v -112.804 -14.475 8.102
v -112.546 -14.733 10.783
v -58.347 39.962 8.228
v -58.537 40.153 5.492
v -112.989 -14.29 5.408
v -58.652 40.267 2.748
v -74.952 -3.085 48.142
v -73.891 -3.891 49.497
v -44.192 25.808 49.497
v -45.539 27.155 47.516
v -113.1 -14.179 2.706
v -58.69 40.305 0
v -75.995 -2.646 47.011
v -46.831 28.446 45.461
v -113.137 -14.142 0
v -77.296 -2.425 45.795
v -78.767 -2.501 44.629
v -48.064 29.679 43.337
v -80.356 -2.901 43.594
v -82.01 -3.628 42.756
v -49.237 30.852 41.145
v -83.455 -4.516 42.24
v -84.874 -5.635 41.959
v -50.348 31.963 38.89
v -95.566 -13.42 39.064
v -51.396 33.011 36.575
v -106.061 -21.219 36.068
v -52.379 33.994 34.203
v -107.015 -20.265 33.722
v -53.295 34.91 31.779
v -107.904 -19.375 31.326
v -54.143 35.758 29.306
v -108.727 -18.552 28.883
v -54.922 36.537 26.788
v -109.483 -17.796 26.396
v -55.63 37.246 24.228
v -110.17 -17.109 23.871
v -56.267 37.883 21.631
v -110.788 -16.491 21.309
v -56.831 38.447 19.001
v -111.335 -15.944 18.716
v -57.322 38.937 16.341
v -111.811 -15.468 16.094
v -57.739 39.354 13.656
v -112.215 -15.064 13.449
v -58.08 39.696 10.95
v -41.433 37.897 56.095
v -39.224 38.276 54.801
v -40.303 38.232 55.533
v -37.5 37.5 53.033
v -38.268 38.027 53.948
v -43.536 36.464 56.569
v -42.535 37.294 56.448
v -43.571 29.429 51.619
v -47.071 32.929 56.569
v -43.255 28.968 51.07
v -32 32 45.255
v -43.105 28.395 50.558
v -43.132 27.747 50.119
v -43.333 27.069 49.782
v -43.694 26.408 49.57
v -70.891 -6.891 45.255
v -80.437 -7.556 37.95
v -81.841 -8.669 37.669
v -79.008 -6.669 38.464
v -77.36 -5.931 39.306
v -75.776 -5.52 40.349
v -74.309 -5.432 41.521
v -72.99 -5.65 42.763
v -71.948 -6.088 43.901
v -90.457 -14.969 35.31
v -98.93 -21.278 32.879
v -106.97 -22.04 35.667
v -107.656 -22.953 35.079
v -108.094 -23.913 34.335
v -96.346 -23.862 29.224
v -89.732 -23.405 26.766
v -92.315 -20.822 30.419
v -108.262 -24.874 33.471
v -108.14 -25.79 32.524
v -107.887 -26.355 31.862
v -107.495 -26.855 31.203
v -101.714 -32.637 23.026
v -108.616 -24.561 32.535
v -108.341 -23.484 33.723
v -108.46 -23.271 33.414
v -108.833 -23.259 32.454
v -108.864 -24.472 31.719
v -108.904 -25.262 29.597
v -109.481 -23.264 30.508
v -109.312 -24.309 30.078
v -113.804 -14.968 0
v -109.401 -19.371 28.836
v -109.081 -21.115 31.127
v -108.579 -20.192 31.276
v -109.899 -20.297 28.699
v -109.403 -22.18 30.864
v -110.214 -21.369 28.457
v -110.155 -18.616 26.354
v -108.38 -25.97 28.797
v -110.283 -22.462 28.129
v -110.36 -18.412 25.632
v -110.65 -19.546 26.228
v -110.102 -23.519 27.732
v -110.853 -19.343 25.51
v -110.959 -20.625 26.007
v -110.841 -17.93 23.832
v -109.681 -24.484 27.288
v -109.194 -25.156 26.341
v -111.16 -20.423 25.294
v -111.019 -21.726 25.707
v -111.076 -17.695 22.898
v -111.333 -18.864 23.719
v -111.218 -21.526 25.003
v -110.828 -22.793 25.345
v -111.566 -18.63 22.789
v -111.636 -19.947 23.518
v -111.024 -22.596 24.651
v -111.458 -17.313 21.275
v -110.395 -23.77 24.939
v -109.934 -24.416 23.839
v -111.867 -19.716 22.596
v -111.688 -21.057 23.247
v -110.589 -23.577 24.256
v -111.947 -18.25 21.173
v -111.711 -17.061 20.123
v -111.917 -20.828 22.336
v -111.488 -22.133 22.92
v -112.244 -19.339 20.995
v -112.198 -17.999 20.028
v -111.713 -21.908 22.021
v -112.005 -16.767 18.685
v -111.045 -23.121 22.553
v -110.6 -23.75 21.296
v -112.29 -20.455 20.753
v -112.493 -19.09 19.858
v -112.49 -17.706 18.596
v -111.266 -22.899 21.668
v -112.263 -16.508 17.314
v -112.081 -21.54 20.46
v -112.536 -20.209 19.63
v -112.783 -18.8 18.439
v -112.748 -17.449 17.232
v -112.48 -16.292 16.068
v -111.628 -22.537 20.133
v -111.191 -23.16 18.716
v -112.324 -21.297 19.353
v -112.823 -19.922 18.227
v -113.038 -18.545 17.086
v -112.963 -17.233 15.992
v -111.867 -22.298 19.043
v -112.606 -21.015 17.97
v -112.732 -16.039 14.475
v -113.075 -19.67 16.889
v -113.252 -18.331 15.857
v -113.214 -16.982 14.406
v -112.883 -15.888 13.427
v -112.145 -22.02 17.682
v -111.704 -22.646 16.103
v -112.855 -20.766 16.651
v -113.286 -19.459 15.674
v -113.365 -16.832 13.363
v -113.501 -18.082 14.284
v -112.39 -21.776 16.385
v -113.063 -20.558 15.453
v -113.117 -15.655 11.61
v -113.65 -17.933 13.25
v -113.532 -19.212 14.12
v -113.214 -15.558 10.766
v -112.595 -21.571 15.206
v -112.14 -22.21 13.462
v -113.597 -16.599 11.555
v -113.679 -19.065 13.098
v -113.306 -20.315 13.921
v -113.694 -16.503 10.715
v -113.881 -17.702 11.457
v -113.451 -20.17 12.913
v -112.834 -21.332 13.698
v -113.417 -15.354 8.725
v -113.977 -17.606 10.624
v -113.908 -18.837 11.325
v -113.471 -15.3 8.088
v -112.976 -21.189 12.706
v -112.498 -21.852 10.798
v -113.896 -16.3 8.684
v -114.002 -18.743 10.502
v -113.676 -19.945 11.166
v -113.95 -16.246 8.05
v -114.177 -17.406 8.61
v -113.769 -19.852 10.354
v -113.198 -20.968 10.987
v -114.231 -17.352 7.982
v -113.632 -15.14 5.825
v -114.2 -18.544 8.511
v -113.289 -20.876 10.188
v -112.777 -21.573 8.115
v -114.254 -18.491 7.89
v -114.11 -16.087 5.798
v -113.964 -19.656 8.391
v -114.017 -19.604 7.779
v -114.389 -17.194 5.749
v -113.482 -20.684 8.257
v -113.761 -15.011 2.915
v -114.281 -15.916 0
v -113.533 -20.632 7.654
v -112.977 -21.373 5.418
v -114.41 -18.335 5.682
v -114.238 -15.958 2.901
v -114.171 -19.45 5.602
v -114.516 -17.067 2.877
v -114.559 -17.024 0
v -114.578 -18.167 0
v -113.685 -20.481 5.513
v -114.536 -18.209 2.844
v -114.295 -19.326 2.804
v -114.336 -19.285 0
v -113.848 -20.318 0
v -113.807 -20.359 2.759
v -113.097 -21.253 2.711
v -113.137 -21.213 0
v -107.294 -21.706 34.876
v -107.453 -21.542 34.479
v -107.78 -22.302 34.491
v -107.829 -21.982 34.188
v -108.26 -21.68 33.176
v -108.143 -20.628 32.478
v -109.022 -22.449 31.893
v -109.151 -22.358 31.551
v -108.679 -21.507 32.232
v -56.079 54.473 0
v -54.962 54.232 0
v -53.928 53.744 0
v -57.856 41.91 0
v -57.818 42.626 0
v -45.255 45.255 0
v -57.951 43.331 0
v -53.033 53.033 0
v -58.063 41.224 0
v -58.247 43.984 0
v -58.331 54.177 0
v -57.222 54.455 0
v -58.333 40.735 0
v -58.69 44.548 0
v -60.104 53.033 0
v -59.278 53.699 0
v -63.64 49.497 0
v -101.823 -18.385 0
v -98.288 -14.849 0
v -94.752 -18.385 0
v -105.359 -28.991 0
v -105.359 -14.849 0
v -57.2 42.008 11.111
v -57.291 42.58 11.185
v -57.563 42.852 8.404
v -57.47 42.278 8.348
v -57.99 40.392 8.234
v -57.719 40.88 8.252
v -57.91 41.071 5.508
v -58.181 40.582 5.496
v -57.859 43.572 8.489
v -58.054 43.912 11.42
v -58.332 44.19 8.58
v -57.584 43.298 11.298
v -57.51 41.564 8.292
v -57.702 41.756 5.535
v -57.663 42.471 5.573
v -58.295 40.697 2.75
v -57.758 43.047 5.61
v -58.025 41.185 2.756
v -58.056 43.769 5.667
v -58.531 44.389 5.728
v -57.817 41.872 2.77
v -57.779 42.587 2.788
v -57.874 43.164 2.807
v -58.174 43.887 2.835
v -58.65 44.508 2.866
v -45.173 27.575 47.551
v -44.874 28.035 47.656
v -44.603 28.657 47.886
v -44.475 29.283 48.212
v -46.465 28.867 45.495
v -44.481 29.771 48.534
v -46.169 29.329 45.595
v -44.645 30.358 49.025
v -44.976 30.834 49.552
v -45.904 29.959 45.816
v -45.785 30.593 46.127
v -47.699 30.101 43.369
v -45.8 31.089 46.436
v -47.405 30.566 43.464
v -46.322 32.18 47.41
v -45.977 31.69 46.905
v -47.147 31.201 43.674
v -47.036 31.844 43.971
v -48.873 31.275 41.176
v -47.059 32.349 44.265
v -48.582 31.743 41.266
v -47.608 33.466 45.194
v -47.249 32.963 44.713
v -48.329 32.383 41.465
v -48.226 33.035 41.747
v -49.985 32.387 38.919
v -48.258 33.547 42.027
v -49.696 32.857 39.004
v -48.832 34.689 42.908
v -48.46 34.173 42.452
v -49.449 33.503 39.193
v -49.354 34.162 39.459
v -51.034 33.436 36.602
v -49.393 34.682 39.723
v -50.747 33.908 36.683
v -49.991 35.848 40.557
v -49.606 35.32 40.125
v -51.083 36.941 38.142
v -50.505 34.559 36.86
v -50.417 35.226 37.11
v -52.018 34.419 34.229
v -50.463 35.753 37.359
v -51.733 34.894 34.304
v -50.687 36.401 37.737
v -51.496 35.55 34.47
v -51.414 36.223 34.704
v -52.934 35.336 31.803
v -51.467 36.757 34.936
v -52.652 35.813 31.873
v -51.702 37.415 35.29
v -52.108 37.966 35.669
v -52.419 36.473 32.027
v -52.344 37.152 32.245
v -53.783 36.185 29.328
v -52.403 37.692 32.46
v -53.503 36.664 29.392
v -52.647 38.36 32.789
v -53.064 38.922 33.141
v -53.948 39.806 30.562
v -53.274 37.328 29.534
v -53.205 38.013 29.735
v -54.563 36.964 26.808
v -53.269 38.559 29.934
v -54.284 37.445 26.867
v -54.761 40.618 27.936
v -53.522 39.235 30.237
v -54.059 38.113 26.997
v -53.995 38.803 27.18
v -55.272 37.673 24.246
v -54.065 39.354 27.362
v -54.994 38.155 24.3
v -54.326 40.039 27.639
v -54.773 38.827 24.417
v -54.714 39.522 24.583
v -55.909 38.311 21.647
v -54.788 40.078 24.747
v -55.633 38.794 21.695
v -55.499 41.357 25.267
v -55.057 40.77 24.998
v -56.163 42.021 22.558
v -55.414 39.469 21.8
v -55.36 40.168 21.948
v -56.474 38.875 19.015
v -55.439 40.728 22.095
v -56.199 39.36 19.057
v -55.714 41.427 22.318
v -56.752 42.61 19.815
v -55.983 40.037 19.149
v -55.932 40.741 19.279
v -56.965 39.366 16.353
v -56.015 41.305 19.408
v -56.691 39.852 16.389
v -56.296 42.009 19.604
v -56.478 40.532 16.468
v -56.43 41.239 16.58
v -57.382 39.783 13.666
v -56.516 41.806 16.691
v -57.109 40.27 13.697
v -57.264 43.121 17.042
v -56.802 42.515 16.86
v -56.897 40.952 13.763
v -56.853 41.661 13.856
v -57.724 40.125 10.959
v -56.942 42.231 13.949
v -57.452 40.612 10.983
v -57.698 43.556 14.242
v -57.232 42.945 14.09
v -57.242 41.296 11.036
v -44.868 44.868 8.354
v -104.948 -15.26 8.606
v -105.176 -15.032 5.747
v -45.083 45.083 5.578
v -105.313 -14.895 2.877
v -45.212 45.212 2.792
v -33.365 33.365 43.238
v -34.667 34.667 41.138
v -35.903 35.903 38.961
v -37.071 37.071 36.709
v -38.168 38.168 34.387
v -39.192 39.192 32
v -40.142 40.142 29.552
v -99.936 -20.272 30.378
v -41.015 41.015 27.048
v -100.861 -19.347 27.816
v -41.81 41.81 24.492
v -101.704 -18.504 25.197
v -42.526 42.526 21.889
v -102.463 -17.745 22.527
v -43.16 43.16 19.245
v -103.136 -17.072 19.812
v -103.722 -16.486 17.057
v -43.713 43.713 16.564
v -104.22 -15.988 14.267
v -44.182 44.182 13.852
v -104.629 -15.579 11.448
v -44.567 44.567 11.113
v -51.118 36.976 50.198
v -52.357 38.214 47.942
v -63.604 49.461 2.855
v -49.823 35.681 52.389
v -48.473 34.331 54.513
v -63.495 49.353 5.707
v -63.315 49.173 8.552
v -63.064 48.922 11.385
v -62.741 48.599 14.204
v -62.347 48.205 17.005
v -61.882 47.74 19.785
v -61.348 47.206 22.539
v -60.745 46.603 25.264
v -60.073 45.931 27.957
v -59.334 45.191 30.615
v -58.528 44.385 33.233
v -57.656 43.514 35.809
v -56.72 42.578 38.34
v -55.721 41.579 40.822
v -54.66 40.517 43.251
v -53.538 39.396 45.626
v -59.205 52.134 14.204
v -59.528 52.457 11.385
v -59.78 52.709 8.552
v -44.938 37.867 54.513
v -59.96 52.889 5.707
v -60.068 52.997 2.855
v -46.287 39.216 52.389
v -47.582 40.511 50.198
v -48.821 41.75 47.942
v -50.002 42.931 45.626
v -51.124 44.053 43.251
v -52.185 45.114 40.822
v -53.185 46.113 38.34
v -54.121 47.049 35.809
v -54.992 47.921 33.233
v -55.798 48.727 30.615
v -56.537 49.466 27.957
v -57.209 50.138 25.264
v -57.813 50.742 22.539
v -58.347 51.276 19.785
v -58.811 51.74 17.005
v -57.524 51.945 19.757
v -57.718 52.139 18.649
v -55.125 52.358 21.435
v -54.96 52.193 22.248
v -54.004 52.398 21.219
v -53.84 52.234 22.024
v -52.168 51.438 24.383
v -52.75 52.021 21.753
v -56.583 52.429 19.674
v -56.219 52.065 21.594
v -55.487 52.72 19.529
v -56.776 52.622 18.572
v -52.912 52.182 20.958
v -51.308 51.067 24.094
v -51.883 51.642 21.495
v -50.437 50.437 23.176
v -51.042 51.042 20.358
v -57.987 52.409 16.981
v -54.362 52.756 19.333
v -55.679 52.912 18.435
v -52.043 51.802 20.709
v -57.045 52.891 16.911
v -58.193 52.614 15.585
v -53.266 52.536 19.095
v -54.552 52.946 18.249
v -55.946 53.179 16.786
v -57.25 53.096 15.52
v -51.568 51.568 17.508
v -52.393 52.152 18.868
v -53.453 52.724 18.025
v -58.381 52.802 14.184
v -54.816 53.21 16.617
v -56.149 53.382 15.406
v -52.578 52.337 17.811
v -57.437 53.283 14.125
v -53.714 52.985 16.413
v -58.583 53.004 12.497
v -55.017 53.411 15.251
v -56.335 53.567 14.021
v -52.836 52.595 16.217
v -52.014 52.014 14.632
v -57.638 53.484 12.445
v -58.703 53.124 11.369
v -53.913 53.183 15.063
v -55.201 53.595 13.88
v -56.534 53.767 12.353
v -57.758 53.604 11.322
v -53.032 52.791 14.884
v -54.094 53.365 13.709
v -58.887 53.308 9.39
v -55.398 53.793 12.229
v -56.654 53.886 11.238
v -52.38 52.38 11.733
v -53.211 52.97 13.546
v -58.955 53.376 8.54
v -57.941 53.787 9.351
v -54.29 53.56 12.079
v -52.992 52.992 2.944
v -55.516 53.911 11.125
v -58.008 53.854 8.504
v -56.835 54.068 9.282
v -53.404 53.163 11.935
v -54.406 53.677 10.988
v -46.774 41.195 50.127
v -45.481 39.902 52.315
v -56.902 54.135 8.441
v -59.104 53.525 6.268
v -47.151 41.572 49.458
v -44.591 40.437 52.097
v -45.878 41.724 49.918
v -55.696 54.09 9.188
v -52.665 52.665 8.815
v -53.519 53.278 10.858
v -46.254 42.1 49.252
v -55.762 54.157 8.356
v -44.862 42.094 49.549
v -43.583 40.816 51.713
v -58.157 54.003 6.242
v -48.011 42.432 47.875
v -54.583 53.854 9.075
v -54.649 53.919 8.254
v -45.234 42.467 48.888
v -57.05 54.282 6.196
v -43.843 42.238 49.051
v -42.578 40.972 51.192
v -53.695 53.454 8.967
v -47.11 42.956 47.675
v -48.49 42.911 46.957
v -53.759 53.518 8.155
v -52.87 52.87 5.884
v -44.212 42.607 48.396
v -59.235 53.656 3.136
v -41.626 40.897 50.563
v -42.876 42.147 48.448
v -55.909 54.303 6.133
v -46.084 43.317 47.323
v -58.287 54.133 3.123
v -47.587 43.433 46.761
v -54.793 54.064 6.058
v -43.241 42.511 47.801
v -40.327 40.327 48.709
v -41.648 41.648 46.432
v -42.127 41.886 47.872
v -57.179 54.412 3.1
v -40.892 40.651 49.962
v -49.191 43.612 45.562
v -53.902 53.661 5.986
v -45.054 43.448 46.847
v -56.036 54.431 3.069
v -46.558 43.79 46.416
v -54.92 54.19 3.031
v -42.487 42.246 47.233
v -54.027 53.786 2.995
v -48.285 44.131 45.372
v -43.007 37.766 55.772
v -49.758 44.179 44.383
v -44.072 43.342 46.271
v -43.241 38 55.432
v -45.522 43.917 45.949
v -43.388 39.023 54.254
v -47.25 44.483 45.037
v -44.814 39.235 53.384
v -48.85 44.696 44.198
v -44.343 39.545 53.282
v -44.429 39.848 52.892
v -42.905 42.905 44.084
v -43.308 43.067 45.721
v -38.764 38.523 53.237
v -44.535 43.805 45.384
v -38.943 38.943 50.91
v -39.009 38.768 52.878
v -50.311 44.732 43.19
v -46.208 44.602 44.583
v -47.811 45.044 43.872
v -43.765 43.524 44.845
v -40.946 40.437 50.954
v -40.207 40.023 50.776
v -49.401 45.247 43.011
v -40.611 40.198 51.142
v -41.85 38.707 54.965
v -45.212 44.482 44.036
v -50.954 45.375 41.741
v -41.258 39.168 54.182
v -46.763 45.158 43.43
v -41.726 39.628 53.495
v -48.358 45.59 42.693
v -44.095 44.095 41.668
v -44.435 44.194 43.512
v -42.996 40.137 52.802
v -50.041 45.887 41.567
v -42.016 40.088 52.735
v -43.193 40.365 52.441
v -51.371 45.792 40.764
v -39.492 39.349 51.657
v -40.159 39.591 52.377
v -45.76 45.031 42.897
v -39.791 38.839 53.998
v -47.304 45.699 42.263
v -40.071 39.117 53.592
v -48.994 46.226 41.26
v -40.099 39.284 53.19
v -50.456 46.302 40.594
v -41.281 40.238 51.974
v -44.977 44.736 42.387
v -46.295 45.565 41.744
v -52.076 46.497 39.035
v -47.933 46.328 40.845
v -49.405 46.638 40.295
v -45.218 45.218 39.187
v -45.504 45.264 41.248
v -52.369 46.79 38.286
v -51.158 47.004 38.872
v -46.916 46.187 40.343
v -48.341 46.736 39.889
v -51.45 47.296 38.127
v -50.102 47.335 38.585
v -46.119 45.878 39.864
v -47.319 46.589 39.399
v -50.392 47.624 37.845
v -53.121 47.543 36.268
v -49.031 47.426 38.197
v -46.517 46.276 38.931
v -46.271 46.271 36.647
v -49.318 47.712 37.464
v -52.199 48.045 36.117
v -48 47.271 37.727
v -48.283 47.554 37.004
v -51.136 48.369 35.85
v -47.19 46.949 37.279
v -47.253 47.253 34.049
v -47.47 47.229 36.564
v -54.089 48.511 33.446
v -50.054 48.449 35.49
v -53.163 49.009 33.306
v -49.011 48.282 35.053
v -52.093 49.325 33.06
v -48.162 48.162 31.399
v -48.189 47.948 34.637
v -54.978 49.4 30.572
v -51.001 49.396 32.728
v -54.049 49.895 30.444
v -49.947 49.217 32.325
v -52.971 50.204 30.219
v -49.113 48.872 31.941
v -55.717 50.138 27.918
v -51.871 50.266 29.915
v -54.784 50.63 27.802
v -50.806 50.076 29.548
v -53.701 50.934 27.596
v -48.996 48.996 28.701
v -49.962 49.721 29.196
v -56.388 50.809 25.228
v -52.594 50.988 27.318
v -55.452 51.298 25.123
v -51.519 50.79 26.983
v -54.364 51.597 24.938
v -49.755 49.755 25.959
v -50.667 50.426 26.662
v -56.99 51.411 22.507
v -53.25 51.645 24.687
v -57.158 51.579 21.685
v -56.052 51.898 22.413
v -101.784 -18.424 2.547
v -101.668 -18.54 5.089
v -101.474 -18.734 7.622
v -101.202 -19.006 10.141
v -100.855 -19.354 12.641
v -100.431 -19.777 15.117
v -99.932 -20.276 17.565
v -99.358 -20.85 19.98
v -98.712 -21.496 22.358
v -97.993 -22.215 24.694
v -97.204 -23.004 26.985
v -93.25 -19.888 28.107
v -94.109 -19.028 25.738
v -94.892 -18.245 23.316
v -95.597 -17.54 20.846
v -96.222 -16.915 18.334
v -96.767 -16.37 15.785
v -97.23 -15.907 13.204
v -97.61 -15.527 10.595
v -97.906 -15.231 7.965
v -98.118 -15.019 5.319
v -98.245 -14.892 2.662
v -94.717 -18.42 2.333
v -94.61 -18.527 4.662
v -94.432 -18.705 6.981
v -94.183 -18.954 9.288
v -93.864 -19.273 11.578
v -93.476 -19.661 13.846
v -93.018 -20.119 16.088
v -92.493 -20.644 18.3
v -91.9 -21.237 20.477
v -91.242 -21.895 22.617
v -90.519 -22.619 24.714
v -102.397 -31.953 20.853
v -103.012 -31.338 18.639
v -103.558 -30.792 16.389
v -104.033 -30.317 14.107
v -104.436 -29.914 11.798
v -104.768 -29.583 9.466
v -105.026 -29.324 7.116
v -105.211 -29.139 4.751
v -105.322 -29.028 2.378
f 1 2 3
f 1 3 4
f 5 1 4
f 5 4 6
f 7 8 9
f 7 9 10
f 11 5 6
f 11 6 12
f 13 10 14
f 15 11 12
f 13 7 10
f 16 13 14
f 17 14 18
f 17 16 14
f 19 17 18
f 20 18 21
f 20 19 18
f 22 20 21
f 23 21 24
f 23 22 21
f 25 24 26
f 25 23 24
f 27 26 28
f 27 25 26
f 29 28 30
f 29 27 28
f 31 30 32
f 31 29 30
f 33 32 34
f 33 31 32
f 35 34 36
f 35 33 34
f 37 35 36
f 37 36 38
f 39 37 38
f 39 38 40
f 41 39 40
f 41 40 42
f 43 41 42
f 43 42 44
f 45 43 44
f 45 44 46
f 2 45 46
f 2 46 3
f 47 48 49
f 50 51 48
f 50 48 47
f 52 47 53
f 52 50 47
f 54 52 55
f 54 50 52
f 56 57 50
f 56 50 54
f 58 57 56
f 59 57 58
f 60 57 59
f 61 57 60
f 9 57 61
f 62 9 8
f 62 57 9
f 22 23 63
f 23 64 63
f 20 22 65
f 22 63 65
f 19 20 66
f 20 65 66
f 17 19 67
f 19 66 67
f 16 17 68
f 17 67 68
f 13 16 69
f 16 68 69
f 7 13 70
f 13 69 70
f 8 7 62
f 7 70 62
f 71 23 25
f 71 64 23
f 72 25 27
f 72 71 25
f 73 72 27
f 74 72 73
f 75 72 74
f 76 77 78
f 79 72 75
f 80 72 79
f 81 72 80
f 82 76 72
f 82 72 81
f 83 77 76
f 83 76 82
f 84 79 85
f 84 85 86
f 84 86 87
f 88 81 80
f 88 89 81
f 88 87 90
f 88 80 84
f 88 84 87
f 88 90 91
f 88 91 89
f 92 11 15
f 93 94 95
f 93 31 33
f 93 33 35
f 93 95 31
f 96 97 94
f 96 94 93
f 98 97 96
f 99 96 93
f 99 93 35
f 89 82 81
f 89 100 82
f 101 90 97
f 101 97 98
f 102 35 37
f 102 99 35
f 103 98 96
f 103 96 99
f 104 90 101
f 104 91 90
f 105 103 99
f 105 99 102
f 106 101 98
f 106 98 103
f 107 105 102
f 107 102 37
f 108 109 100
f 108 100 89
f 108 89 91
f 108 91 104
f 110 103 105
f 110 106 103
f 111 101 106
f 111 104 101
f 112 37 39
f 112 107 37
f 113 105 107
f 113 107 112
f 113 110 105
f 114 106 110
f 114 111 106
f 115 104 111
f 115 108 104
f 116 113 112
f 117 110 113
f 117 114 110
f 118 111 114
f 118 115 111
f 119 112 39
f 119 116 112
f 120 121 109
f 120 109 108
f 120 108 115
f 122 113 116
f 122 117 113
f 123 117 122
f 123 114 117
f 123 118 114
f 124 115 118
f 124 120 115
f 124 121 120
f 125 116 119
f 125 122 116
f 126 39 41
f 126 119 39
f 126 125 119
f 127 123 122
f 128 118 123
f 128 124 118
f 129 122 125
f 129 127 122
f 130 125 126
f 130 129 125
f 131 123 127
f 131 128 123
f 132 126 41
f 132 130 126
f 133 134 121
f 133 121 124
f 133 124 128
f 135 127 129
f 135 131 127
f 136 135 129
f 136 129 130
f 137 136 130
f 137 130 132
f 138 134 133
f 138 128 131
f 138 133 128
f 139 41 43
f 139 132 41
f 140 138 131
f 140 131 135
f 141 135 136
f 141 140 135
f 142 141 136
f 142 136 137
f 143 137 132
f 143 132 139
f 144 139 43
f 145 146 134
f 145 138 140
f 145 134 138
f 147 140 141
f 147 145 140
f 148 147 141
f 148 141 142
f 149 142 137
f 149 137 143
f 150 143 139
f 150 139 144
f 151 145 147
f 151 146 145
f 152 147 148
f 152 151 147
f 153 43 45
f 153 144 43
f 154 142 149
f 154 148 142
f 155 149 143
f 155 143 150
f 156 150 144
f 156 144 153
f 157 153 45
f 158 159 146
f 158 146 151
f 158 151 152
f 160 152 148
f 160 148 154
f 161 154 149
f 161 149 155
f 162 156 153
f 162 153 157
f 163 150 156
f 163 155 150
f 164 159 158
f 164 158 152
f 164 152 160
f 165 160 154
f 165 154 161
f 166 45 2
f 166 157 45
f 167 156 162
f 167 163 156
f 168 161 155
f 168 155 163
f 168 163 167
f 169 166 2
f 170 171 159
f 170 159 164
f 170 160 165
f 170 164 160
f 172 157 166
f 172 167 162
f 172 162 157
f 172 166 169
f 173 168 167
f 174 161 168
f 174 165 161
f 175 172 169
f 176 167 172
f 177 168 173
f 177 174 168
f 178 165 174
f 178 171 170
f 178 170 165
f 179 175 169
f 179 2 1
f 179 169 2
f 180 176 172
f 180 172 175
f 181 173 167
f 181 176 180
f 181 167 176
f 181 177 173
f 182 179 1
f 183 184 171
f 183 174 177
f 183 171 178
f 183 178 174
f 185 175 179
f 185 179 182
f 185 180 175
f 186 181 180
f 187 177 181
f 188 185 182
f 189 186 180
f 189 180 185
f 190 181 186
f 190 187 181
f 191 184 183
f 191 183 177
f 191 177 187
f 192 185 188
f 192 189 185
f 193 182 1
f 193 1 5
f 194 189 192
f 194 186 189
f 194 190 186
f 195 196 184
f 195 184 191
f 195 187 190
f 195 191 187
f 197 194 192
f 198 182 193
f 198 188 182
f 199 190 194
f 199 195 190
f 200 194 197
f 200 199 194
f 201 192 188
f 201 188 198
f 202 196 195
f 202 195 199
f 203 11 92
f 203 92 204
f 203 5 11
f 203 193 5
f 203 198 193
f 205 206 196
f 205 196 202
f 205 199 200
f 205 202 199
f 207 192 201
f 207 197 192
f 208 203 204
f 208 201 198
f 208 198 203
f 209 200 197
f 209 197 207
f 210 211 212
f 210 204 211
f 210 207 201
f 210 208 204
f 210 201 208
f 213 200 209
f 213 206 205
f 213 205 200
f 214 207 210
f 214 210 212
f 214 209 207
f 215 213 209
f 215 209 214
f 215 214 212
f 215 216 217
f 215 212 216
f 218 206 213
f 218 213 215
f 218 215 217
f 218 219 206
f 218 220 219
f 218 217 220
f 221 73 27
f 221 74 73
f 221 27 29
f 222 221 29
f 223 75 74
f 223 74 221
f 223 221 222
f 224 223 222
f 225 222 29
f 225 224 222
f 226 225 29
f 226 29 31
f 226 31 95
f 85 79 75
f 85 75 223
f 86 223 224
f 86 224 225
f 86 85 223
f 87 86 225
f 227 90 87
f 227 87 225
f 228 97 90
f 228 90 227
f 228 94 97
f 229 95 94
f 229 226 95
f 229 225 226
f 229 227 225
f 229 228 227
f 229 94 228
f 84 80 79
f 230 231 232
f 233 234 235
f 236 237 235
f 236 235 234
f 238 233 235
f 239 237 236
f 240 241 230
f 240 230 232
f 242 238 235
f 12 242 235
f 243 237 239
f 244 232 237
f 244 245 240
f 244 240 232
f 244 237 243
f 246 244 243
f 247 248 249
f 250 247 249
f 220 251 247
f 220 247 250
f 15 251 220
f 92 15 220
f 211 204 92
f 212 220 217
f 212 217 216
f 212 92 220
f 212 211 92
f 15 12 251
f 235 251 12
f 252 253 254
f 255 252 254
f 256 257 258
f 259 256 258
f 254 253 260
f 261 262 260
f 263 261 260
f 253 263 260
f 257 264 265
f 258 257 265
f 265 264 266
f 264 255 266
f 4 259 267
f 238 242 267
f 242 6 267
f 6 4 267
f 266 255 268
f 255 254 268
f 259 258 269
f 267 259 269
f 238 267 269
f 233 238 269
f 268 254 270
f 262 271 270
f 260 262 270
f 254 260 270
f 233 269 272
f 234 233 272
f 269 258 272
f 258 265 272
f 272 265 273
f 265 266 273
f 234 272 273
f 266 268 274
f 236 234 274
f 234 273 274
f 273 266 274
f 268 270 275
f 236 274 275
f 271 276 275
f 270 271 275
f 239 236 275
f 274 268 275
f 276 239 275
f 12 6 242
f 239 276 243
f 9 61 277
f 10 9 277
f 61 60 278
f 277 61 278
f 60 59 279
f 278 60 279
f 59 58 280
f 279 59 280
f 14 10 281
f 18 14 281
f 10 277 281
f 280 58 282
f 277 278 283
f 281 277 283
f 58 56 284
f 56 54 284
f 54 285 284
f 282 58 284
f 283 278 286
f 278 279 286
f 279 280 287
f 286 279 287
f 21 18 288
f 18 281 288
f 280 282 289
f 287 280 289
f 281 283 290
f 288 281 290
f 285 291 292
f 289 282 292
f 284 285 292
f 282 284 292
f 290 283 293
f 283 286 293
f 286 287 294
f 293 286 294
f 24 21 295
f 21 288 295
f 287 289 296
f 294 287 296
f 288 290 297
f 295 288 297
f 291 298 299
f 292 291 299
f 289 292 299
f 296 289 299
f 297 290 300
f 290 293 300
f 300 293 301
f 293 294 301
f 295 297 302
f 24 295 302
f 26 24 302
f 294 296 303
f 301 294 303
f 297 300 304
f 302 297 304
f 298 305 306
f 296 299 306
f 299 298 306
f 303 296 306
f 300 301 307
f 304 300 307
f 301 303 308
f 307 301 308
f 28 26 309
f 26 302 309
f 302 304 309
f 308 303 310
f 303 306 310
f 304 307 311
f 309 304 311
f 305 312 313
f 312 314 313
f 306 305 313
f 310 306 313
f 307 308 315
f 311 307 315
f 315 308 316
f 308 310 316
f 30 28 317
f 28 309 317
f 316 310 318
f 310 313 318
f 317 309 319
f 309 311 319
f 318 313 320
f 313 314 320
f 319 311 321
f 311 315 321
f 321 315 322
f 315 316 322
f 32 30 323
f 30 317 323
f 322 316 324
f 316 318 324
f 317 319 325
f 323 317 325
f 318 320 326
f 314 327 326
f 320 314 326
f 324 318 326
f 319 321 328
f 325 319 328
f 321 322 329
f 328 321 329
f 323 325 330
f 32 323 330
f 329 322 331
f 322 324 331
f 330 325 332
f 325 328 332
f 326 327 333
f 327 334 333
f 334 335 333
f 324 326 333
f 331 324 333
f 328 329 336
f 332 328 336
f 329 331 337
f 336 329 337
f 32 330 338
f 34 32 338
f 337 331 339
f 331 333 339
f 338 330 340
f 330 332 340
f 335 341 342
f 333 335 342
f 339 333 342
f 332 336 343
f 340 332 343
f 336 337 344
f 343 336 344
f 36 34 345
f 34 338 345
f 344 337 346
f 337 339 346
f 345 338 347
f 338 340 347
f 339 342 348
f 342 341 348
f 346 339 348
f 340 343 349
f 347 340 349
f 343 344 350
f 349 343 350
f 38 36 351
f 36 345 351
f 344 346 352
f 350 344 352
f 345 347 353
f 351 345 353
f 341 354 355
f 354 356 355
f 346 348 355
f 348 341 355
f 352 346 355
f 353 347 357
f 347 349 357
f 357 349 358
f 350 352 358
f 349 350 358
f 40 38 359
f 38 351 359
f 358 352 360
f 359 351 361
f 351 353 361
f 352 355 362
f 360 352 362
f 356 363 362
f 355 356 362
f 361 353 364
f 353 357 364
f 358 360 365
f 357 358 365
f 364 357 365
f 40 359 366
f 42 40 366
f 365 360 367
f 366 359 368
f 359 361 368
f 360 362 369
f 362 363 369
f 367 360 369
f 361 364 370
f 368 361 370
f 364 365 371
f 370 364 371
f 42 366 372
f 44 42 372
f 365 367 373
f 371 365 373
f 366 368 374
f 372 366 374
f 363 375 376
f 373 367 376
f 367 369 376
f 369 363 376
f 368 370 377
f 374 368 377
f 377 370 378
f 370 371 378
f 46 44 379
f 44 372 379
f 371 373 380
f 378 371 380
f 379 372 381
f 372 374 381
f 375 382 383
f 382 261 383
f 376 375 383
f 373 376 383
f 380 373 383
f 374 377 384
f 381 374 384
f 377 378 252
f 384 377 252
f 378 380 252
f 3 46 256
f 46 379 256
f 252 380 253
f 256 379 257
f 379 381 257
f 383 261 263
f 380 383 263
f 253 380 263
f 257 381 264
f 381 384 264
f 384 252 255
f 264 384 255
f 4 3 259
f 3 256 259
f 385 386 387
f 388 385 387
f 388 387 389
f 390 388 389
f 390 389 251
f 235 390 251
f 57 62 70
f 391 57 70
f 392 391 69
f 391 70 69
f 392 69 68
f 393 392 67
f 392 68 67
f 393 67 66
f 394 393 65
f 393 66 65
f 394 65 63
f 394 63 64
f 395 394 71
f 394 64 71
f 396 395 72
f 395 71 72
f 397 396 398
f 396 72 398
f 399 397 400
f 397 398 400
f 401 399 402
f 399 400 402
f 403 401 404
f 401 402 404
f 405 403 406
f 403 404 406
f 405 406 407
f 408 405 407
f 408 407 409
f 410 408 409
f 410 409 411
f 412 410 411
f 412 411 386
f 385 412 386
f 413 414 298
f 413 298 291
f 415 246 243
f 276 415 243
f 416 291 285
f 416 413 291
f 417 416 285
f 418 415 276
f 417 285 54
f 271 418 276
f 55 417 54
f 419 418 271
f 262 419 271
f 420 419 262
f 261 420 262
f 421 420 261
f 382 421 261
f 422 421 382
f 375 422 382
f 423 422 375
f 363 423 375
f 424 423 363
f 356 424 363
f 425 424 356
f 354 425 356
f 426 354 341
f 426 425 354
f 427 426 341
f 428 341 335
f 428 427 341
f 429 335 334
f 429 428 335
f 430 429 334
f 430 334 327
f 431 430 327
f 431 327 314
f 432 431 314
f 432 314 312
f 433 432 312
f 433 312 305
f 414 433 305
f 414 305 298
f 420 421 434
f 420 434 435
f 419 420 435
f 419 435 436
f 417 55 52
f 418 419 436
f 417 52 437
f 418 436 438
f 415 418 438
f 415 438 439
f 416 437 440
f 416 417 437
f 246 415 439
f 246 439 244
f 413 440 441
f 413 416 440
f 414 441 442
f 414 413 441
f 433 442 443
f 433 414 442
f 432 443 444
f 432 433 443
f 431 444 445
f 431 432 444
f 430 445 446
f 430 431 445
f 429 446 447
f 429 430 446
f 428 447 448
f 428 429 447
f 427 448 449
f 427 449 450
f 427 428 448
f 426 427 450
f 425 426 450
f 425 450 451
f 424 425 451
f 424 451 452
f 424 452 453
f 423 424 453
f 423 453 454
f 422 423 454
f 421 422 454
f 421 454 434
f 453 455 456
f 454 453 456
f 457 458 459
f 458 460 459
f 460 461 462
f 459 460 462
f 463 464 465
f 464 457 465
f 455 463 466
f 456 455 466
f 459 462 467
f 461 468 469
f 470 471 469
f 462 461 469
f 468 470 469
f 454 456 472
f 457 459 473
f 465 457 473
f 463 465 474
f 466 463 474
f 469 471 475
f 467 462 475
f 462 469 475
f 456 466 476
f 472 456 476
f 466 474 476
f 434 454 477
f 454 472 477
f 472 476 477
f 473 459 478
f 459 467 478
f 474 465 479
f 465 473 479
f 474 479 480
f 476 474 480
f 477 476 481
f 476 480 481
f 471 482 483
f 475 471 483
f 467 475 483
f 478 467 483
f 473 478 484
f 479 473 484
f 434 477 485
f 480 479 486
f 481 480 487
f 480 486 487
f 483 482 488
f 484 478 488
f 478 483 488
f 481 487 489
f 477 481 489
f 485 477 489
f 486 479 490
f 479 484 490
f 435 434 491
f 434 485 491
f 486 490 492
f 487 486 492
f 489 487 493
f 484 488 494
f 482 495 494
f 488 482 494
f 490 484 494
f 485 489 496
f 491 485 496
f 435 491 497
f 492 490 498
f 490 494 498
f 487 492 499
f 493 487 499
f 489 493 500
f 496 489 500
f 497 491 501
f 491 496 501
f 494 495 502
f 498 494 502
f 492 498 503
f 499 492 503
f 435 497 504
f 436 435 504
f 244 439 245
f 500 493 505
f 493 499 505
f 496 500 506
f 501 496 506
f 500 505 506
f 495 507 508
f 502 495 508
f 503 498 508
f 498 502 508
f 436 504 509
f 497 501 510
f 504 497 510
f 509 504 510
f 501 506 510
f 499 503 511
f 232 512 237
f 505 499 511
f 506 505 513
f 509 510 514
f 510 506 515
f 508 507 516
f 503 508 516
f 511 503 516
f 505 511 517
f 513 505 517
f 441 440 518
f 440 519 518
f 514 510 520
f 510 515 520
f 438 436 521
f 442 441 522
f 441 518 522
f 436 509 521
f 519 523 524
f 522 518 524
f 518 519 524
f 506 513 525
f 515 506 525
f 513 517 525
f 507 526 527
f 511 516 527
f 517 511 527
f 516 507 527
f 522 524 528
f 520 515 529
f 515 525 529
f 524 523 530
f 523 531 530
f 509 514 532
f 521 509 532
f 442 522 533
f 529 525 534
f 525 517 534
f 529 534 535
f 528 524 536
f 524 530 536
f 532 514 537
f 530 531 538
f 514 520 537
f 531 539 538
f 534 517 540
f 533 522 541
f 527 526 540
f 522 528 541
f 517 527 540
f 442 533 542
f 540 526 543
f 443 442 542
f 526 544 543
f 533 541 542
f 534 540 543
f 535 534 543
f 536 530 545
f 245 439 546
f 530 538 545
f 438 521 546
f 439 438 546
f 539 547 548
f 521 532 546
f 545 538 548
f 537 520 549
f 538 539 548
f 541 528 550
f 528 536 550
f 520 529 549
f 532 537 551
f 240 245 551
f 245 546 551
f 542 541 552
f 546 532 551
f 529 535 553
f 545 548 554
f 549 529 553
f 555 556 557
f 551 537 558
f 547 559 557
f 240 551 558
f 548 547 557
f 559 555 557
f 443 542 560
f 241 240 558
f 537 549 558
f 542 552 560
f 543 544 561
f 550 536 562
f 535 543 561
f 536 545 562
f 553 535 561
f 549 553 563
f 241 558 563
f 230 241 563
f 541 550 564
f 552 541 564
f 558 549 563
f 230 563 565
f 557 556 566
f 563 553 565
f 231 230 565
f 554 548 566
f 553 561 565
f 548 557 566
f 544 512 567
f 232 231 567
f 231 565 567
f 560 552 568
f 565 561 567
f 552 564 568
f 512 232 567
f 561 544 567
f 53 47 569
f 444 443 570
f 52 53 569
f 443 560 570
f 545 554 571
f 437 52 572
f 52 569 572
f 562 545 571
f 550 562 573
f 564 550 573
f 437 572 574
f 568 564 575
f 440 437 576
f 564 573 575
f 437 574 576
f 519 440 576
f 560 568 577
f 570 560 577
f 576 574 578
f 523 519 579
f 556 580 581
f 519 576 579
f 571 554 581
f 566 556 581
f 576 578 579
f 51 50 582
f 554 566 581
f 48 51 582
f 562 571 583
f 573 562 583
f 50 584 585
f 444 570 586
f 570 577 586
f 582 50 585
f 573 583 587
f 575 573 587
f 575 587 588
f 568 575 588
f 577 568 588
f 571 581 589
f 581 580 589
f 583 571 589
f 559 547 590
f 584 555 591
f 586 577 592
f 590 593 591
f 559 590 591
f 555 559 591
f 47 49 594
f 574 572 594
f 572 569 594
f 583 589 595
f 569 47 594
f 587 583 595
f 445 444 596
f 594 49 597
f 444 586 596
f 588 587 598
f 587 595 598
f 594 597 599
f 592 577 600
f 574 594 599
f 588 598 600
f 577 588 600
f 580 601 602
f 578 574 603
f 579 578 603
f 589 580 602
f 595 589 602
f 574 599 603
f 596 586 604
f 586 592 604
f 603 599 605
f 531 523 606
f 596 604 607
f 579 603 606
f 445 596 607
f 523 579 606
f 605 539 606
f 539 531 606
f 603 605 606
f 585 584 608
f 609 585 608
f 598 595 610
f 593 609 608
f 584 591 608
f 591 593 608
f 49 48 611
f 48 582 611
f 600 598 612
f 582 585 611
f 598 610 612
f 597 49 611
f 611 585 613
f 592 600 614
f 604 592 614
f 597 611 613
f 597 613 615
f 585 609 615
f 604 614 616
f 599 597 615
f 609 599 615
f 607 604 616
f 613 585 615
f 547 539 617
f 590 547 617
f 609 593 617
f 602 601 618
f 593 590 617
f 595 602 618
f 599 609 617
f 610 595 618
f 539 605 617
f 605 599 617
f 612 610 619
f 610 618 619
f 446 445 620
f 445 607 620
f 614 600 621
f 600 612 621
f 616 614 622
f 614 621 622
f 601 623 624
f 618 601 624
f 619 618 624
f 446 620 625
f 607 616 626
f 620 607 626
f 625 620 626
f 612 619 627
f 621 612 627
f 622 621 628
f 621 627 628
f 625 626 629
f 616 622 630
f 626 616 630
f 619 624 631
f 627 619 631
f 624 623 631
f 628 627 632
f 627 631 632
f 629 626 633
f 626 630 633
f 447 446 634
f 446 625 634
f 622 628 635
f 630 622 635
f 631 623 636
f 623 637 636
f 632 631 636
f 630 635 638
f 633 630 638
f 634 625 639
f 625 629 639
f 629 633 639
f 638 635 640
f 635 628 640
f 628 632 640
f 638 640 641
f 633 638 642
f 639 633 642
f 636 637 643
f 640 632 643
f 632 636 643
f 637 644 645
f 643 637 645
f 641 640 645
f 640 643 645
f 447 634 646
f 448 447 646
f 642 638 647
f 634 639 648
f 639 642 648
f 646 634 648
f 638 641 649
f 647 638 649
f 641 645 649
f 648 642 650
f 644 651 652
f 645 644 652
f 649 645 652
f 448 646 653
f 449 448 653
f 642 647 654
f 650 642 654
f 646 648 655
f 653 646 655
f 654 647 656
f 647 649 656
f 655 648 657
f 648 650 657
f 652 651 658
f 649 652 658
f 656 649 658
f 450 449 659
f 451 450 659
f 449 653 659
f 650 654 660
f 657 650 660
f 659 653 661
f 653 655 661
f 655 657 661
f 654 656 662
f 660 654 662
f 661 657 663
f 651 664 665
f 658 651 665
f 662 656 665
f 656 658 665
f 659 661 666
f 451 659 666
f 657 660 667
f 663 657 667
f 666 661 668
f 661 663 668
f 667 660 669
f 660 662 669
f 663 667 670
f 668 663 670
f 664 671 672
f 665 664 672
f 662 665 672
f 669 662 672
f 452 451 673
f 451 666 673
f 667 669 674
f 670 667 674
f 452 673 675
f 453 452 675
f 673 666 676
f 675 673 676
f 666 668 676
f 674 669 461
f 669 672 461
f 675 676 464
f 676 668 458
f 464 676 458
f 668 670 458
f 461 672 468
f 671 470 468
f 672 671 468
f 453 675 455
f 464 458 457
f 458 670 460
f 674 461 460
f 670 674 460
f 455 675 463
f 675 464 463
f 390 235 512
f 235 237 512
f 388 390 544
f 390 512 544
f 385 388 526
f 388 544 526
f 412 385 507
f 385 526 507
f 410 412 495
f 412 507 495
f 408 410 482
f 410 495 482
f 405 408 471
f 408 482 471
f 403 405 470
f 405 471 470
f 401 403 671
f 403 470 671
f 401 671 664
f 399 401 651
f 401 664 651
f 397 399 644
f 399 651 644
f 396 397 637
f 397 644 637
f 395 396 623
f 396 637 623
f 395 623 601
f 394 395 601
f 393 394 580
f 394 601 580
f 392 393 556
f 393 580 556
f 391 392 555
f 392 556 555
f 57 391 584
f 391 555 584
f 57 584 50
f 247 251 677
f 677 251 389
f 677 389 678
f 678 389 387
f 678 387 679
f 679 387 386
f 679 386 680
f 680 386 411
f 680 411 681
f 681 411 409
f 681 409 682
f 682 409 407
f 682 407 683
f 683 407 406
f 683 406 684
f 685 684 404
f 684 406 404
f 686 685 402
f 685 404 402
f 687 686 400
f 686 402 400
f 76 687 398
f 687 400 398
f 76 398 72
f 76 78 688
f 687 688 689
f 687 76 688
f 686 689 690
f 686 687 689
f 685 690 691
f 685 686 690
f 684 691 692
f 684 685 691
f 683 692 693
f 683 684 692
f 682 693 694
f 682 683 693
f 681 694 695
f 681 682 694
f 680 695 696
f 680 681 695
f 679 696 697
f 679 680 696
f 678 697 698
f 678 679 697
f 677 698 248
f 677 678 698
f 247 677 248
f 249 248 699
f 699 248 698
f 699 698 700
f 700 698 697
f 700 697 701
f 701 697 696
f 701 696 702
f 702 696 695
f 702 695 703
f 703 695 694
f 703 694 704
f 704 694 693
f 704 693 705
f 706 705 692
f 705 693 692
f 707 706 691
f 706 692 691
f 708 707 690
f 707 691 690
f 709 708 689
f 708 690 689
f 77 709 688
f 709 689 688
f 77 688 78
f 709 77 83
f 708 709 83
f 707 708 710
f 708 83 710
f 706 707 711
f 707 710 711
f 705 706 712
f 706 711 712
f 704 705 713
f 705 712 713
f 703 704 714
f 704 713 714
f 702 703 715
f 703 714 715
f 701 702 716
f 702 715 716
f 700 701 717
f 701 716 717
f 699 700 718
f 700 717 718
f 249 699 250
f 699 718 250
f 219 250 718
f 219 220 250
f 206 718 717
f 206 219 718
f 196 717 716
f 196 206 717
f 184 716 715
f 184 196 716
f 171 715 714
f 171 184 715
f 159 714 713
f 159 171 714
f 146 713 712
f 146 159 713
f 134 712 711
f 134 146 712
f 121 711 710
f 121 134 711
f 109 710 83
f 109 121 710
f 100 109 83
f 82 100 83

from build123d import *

# Parameters (mm, degrees)
BOX007_W               = 100
BOX007_H               = 100
BOX007_DEPTH           = 100
BOX007_PLACEMENT_ANGLE = 135
BOX006_W               = 200
BOX006_H               = 100
BOX006_DEPTH           = 100
BOX006_PLACEMENT_ANGLE = 135
BOX005_W               = 100
BOX005_H               = 100
BOX005_DEPTH           = 100
BOX004_W               = 20
BOX004_H               = 20
BOX004_DEPTH           = 80
BOX003_W               = 20
BOX003_H               = 20
BOX003_DEPTH           = 80
BOX002_W               = 10
BOX002_H               = 25
BOX002_DEPTH           = 35
BOX002_PITCH_ANGLE     = -15
BOX001_W               = 10
BOX001_H               = 25
BOX001_DEPTH           = 35
BOX001_PITCH_ANGLE     = 15
BOX_W                  = 20
BOX_H                  = 25
BOX_DEPTH              = 35
CYLINDER005_R          = 10
CYLINDER005_DEPTH      = 180
CYLINDER005_ROLL_ANGLE = 90
CYLINDER004_R          = 54
CYLINDER004_DEPTH      = 100
CYLINDER003_R          = 59
CYLINDER003_DEPTH      = 10
CYLINDER002_R          = 64
CYLINDER002_DEPTH      = 85
CYLINDER001_R          = 70
CYLINDER001_DEPTH      = 90
CYLINDER_R             = 80
CYLINDER_DEPTH         = 10
FILLET_R               = 3
FILLET001_R            = 5
FILLET002_R            = 5
CUT009_ROLL_ANGLE      = 90
CUT009_PITCH_ANGLE     = -45
CUT009_PLACEMENT_ANGLE = -45


with BuildPart() as cube004:
    # Box007 → Box007 (new body)
    with BuildSketch(Plane.XY):
        with Locations((50, 50)):
            Rectangle(BOX007_W, BOX007_H)
    extrude(amount=BOX007_DEPTH)


with BuildPart() as cube004_1:
    # Box007 placement: moved
    add(cube004.part.rotate(Axis((0, 0, 0), (0, 0, -1)), BOX007_PLACEMENT_ANGLE))


with BuildPart() as cube003:
    # Box006 → Box006 (new body)
    with BuildSketch(Plane.XY):
        with Locations((100, 50)):
            Rectangle(BOX006_W, BOX006_H)
    extrude(amount=BOX006_DEPTH)


with BuildPart() as cube003_1:
    # Box006 placement: moved
    add(cube003.part.moved(Location((71, -71, 0))).rotate(Axis((71, -71, 0), (0, 0, 1)), BOX006_PLACEMENT_ANGLE))


with BuildPart() as cube002:
    # Box005 → Box005 (new body)
    with BuildSketch(Plane.XY):
        with Locations((50, 50)):
            Rectangle(BOX005_W, BOX005_H)
    extrude(amount=BOX005_DEPTH)


with BuildPart() as tab_cut_l:
    # Box004 → Box004 (new body)
    with BuildSketch(Plane(origin=(-83, -10, 20), x_dir=(1, 0, 0), z_dir=(0, 0, 1))):
        with Locations((10, 10)):
            Rectangle(BOX004_W, BOX004_H)
    extrude(amount=BOX004_DEPTH)


with BuildPart() as tab_cut_r:
    # Box003 → Box003 (new body)
    with BuildSketch(Plane(origin=(63, -10, 20), x_dir=(1, 0, 0), z_dir=(0, 0, 1))):
        with Locations((10, 10)):
            Rectangle(BOX003_W, BOX003_H)
    extrude(amount=BOX003_DEPTH)


with BuildPart() as cube001:
    # Box002 → Box002 (new body)
    with BuildSketch(Plane.XY):
        with Locations((5, 12.5)):
            Rectangle(BOX002_W, BOX002_H)
    extrude(amount=BOX002_DEPTH)


with BuildPart() as cube001_1:
    # Box002 pitch: moved
    add(cube001.part.rotate(Axis((0, 0, 0), (0, 1, 0)), BOX002_PITCH_ANGLE))


with BuildPart() as cube001_2:
    # Box002 placement: moved
    add(cube001_1.part.moved(Location((-9.95, 48, 64))))


with BuildPart() as cube:
    # Box001 → Box001 (new body)
    with BuildSketch(Plane.XY):
        with Locations((5, 12.5)):
            Rectangle(BOX001_W, BOX001_H)
    extrude(amount=BOX001_DEPTH)


with BuildPart() as cube_1:
    # Box001 pitch: moved
    add(cube.part.rotate(Axis((0, 0, 0), (0, 1, 0)), BOX001_PITCH_ANGLE))


with BuildPart() as cube_2:
    # Box001 placement: moved
    add(cube_1.part.moved(Location((0, 48, 65))))


with BuildPart() as bearing_slot:
    # Box → Box (new body)
    with BuildSketch(Plane(origin=(-10, 48, 65), x_dir=(1, 0, 0), z_dir=(0, 0, 1))):
        with Locations((10, 12.5)):
            Rectangle(BOX_W, BOX_H)
    extrude(amount=BOX_DEPTH)


with BuildPart() as bearing_holes:
    # Cylinder005 → Cylinder005 (new body)
    with BuildSketch(Plane.XY):
        Circle(CYLINDER005_R)
    extrude(amount=CYLINDER005_DEPTH)


with BuildPart() as bearing_holes_1:
    # Cylinder005 roll: moved
    add(bearing_holes.part.rotate(Axis((0, 0, 0), (1, 0, 0)), CYLINDER005_ROLL_ANGLE))


with BuildPart() as bearing_holes_2:
    # Cylinder005 placement: moved
    add(bearing_holes_1.part.moved(Location((0, 90, 65))))


with BuildPart() as through_hole:
    # Cylinder004 → Cylinder004 (new body)
    with BuildSketch(Plane.XY):
        Circle(CYLINDER004_R)
    extrude(amount=CYLINDER004_DEPTH)


with BuildPart() as inner_lip:
    # Cylinder003 → Cylinder003 (new body)
    with BuildSketch(Plane.XY.offset(80)):
        Circle(CYLINDER003_R)
    extrude(amount=CYLINDER003_DEPTH)


with BuildPart() as inner_hole:
    # Cylinder002 → Cylinder002 (new body)
    with BuildSketch(Plane.XY):
        Circle(CYLINDER002_R)
    extrude(amount=CYLINDER002_DEPTH)


with BuildPart() as body_cylinder:
    # Cylinder001 → Cylinder001 (new body)
    with BuildSketch(Plane.XY.offset(5)):
        Circle(CYLINDER001_R)
    extrude(amount=CYLINDER001_DEPTH)


with BuildPart() as cut010:
    # Cylinder → Cylinder (new body)
    with BuildSketch(Plane.XY):
        Circle(CYLINDER_R)
    extrude(amount=CYLINDER_DEPTH)

    # Fusion: union Body_Cylinder
    add(body_cylinder.part)

    # Cut: cut Inner_Hole
    add(inner_hole.part, mode=Mode.SUBTRACT)

    # Fusion001: union Inner_Lip
    add(inner_lip.part)

    # Cut001: cut Through_Hole
    add(through_hole.part, mode=Mode.SUBTRACT)

    # Fillet
    fillet_edges = [cut010.edges().sort_by_distance(p)[0] for p in [
        (-70, 0, 10),
    ]]
    fillet(fillet_edges, radius=FILLET_R)

    # Fillet001
    fillet001_edges = [cut010.edges().sort_by_distance(p)[0] for p in [
        (-80, 0, 0),
    ]]
    fillet(fillet001_edges, radius=FILLET001_R)

    # Fillet002
    fillet002_edges = [cut010.edges().sort_by_distance(p)[0] for p in [
        (-70, 0, 95),
    ]]
    fillet(fillet002_edges, radius=FILLET002_R)

    # Cut002: cut Bearing_Holes
    add(bearing_holes_2.part, mode=Mode.SUBTRACT)

    # Cut003: cut Bearing_Slot
    add(bearing_slot.part, mode=Mode.SUBTRACT)

    # Cut004: cut Cube
    add(cube_2.part, mode=Mode.SUBTRACT)

    # Cut005: cut Cube001
    add(cube001_2.part, mode=Mode.SUBTRACT)

    # Cut006: cut Tab_Cut_R
    add(tab_cut_r.part, mode=Mode.SUBTRACT)

    # Cut007: cut Tab_Cut_L
    add(tab_cut_l.part, mode=Mode.SUBTRACT)

    # Cut008: cut Cube002
    add(cube002.part, mode=Mode.SUBTRACT)

    # Cut009: cut Cube003
    add(cube003_1.part, mode=Mode.SUBTRACT)


with BuildPart() as cut010_1:
    # Cut009 roll: moved
    add(cut010.part.rotate(Axis((0, 0, 0), (1, 0, 0)), CUT009_ROLL_ANGLE))


with BuildPart() as cut010_2:
    # Cut009 pitch: moved
    add(cut010_1.part.rotate(Axis((0, 0, 0), (0, 1, 0)), CUT009_PITCH_ANGLE))


with BuildPart() as cut010_3:
    # Cut009 placement: moved
    add(cut010_2.part.rotate(Axis((0, 0, 0), (0, 0, 1)), CUT009_PLACEMENT_ANGLE))

    # Cut010: cut Cube004
    add(cube004_1.part, mode=Mode.SUBTRACT)


solid = cut010_3.part
